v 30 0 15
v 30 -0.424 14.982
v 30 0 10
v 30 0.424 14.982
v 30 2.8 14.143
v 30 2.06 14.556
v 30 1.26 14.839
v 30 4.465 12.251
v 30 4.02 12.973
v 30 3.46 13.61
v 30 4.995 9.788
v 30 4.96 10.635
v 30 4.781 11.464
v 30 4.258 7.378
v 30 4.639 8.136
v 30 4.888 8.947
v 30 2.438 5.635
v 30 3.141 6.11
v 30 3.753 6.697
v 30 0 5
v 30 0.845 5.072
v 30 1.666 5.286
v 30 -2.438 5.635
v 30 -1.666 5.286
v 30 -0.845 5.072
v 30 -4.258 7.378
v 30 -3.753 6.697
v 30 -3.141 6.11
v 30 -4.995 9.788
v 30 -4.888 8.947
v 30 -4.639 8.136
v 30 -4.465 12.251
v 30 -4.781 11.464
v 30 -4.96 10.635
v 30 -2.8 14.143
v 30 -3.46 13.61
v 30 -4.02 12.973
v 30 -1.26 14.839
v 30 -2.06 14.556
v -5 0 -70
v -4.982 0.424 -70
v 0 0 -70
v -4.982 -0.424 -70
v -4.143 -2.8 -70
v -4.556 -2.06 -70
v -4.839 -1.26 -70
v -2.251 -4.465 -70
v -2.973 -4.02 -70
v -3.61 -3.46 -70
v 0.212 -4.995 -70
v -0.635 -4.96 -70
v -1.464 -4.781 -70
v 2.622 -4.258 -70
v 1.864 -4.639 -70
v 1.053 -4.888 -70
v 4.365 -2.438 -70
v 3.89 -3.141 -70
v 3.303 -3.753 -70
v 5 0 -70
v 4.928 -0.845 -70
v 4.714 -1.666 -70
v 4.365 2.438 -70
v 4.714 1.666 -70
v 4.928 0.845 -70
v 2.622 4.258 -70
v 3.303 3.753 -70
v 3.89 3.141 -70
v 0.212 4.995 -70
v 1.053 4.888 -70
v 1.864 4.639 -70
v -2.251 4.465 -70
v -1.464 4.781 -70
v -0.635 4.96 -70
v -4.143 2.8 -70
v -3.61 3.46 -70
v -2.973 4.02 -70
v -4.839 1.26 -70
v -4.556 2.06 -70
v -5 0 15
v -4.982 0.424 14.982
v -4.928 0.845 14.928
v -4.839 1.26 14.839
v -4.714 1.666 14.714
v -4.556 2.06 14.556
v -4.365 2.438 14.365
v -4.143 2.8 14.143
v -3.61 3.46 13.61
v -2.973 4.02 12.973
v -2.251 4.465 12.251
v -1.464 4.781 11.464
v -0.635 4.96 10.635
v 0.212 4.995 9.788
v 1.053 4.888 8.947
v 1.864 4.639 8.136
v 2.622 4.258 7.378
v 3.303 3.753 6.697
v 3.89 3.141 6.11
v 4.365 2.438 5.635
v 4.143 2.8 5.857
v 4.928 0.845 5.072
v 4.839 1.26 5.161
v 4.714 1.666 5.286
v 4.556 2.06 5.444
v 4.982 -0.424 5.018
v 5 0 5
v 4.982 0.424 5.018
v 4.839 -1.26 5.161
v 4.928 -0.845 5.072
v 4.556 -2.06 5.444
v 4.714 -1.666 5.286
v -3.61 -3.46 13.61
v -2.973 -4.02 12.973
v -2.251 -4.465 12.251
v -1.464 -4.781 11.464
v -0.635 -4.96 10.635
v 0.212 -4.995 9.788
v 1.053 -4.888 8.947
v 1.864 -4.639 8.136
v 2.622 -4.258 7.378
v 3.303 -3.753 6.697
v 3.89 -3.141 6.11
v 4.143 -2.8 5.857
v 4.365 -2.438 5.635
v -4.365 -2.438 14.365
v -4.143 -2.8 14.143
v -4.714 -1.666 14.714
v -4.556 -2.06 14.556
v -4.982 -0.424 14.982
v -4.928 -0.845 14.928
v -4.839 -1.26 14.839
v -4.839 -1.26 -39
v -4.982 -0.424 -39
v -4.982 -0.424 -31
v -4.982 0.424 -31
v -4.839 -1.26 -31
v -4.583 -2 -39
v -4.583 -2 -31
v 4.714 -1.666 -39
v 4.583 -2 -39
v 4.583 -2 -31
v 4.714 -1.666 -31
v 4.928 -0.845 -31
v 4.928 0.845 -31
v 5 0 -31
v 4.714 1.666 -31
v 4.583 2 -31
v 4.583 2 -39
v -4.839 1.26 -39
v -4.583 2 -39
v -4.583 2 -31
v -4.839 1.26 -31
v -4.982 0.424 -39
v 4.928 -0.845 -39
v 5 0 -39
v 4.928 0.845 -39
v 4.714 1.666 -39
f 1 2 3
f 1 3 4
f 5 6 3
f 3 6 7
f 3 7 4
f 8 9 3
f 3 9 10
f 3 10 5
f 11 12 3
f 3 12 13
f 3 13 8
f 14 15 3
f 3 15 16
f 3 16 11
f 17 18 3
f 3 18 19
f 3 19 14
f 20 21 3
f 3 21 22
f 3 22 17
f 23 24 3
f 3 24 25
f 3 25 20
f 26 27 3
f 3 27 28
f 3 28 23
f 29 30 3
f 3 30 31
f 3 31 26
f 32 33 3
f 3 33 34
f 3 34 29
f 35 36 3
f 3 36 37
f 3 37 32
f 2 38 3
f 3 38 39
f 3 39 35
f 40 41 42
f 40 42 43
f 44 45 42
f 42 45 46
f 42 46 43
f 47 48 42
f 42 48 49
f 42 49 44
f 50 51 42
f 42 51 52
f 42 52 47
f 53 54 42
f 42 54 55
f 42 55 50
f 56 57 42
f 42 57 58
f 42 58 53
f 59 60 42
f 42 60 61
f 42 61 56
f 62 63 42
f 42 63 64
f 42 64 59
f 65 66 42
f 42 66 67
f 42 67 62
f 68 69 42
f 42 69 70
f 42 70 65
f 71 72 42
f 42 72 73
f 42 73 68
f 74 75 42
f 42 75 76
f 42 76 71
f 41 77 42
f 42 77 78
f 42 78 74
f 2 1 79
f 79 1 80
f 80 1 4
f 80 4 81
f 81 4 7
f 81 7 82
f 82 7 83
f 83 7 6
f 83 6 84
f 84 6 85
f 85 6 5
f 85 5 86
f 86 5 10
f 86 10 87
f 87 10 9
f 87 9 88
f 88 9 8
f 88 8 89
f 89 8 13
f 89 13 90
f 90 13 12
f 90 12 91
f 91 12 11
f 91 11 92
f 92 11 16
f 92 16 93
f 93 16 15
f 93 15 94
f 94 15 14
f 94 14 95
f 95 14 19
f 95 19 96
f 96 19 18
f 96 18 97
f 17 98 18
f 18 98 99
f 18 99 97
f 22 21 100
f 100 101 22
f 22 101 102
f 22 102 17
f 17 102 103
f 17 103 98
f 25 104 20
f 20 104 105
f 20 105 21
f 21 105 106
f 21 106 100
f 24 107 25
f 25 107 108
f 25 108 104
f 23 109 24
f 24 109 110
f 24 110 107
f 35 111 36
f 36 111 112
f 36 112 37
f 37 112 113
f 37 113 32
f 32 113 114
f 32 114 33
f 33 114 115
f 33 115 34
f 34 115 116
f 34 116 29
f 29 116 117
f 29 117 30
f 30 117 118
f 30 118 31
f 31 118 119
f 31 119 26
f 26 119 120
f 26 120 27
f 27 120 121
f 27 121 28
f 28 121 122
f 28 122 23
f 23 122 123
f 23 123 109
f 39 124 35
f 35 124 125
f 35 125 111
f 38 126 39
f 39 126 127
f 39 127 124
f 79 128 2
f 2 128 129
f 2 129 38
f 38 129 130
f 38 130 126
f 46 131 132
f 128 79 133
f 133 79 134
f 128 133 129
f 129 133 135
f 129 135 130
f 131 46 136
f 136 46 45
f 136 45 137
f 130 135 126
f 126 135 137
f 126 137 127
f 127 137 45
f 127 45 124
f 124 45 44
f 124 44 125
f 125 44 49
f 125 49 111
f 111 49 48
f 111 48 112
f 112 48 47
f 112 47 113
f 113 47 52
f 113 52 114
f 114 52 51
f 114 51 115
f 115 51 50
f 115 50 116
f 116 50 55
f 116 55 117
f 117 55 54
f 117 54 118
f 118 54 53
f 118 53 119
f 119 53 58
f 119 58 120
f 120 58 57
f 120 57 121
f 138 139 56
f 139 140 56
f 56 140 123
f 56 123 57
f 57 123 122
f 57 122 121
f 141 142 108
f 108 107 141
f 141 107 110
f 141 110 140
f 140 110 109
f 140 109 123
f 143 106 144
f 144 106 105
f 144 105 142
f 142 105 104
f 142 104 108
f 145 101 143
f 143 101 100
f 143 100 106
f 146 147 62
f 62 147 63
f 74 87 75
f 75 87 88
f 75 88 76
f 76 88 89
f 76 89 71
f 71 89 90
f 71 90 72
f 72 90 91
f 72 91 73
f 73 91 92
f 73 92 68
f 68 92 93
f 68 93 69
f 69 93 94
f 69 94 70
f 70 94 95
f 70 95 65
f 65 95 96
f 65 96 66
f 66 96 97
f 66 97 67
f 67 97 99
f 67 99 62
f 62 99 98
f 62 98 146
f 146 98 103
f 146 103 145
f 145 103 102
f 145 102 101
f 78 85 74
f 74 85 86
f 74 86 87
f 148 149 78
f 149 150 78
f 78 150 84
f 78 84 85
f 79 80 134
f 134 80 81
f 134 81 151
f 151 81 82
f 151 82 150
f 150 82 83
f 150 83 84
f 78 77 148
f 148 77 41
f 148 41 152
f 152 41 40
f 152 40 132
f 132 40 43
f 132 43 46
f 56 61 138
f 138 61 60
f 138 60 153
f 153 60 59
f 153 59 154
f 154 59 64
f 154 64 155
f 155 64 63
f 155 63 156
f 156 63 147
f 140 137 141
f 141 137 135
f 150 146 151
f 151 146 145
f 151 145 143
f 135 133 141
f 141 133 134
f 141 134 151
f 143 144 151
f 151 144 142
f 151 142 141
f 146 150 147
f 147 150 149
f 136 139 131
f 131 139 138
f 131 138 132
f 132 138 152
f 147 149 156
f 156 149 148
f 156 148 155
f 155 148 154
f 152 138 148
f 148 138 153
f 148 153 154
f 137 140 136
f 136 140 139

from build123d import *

# Parameters (mm, degrees)
SWEEP2_PROFILE_R        = 5
CUT_EXTRUDE1_DEPTH      = 77.321687612
CUT_EXTRUDE1_DEPTH_BACK = 77.321687612
SKETCH4_W               = 8
SKETCH4_H               = 4


with BuildPart() as part:
    # Sweep2: sweep along a path in Sketch2
    with BuildLine(Plane(origin=(0, 0, 0), x_dir=(1, 0, 0), z_dir=(0, 1, 0))) as sweep2_path:
        Line((0, 70), (0, -10))
        Line((0, -10), (30, -10))
    # Sweep2 profile (on start of the path) → Sweep2 (sweep)
    with BuildSketch(Plane.XY.offset(-70)):
        Circle(SWEEP2_PROFILE_R)
    sweep(path=sweep2_path.line, transition=Transition.RIGHT)

    # Sketch4 → Cut-Extrude1 (cut, two sides: drawn at the far end of the back side and taken through both)
    with BuildSketch(Plane(origin=(0, 0, 0), x_dir=(0, 0, -1), z_dir=(1, 0, 0)).offset(-CUT_EXTRUDE1_DEPTH_BACK)):
        with Locations((35, 0)):
            Rectangle(SKETCH4_W, SKETCH4_H)
    extrude(amount=CUT_EXTRUDE1_DEPTH + CUT_EXTRUDE1_DEPTH_BACK, mode=Mode.SUBTRACT)


solid = part.part
